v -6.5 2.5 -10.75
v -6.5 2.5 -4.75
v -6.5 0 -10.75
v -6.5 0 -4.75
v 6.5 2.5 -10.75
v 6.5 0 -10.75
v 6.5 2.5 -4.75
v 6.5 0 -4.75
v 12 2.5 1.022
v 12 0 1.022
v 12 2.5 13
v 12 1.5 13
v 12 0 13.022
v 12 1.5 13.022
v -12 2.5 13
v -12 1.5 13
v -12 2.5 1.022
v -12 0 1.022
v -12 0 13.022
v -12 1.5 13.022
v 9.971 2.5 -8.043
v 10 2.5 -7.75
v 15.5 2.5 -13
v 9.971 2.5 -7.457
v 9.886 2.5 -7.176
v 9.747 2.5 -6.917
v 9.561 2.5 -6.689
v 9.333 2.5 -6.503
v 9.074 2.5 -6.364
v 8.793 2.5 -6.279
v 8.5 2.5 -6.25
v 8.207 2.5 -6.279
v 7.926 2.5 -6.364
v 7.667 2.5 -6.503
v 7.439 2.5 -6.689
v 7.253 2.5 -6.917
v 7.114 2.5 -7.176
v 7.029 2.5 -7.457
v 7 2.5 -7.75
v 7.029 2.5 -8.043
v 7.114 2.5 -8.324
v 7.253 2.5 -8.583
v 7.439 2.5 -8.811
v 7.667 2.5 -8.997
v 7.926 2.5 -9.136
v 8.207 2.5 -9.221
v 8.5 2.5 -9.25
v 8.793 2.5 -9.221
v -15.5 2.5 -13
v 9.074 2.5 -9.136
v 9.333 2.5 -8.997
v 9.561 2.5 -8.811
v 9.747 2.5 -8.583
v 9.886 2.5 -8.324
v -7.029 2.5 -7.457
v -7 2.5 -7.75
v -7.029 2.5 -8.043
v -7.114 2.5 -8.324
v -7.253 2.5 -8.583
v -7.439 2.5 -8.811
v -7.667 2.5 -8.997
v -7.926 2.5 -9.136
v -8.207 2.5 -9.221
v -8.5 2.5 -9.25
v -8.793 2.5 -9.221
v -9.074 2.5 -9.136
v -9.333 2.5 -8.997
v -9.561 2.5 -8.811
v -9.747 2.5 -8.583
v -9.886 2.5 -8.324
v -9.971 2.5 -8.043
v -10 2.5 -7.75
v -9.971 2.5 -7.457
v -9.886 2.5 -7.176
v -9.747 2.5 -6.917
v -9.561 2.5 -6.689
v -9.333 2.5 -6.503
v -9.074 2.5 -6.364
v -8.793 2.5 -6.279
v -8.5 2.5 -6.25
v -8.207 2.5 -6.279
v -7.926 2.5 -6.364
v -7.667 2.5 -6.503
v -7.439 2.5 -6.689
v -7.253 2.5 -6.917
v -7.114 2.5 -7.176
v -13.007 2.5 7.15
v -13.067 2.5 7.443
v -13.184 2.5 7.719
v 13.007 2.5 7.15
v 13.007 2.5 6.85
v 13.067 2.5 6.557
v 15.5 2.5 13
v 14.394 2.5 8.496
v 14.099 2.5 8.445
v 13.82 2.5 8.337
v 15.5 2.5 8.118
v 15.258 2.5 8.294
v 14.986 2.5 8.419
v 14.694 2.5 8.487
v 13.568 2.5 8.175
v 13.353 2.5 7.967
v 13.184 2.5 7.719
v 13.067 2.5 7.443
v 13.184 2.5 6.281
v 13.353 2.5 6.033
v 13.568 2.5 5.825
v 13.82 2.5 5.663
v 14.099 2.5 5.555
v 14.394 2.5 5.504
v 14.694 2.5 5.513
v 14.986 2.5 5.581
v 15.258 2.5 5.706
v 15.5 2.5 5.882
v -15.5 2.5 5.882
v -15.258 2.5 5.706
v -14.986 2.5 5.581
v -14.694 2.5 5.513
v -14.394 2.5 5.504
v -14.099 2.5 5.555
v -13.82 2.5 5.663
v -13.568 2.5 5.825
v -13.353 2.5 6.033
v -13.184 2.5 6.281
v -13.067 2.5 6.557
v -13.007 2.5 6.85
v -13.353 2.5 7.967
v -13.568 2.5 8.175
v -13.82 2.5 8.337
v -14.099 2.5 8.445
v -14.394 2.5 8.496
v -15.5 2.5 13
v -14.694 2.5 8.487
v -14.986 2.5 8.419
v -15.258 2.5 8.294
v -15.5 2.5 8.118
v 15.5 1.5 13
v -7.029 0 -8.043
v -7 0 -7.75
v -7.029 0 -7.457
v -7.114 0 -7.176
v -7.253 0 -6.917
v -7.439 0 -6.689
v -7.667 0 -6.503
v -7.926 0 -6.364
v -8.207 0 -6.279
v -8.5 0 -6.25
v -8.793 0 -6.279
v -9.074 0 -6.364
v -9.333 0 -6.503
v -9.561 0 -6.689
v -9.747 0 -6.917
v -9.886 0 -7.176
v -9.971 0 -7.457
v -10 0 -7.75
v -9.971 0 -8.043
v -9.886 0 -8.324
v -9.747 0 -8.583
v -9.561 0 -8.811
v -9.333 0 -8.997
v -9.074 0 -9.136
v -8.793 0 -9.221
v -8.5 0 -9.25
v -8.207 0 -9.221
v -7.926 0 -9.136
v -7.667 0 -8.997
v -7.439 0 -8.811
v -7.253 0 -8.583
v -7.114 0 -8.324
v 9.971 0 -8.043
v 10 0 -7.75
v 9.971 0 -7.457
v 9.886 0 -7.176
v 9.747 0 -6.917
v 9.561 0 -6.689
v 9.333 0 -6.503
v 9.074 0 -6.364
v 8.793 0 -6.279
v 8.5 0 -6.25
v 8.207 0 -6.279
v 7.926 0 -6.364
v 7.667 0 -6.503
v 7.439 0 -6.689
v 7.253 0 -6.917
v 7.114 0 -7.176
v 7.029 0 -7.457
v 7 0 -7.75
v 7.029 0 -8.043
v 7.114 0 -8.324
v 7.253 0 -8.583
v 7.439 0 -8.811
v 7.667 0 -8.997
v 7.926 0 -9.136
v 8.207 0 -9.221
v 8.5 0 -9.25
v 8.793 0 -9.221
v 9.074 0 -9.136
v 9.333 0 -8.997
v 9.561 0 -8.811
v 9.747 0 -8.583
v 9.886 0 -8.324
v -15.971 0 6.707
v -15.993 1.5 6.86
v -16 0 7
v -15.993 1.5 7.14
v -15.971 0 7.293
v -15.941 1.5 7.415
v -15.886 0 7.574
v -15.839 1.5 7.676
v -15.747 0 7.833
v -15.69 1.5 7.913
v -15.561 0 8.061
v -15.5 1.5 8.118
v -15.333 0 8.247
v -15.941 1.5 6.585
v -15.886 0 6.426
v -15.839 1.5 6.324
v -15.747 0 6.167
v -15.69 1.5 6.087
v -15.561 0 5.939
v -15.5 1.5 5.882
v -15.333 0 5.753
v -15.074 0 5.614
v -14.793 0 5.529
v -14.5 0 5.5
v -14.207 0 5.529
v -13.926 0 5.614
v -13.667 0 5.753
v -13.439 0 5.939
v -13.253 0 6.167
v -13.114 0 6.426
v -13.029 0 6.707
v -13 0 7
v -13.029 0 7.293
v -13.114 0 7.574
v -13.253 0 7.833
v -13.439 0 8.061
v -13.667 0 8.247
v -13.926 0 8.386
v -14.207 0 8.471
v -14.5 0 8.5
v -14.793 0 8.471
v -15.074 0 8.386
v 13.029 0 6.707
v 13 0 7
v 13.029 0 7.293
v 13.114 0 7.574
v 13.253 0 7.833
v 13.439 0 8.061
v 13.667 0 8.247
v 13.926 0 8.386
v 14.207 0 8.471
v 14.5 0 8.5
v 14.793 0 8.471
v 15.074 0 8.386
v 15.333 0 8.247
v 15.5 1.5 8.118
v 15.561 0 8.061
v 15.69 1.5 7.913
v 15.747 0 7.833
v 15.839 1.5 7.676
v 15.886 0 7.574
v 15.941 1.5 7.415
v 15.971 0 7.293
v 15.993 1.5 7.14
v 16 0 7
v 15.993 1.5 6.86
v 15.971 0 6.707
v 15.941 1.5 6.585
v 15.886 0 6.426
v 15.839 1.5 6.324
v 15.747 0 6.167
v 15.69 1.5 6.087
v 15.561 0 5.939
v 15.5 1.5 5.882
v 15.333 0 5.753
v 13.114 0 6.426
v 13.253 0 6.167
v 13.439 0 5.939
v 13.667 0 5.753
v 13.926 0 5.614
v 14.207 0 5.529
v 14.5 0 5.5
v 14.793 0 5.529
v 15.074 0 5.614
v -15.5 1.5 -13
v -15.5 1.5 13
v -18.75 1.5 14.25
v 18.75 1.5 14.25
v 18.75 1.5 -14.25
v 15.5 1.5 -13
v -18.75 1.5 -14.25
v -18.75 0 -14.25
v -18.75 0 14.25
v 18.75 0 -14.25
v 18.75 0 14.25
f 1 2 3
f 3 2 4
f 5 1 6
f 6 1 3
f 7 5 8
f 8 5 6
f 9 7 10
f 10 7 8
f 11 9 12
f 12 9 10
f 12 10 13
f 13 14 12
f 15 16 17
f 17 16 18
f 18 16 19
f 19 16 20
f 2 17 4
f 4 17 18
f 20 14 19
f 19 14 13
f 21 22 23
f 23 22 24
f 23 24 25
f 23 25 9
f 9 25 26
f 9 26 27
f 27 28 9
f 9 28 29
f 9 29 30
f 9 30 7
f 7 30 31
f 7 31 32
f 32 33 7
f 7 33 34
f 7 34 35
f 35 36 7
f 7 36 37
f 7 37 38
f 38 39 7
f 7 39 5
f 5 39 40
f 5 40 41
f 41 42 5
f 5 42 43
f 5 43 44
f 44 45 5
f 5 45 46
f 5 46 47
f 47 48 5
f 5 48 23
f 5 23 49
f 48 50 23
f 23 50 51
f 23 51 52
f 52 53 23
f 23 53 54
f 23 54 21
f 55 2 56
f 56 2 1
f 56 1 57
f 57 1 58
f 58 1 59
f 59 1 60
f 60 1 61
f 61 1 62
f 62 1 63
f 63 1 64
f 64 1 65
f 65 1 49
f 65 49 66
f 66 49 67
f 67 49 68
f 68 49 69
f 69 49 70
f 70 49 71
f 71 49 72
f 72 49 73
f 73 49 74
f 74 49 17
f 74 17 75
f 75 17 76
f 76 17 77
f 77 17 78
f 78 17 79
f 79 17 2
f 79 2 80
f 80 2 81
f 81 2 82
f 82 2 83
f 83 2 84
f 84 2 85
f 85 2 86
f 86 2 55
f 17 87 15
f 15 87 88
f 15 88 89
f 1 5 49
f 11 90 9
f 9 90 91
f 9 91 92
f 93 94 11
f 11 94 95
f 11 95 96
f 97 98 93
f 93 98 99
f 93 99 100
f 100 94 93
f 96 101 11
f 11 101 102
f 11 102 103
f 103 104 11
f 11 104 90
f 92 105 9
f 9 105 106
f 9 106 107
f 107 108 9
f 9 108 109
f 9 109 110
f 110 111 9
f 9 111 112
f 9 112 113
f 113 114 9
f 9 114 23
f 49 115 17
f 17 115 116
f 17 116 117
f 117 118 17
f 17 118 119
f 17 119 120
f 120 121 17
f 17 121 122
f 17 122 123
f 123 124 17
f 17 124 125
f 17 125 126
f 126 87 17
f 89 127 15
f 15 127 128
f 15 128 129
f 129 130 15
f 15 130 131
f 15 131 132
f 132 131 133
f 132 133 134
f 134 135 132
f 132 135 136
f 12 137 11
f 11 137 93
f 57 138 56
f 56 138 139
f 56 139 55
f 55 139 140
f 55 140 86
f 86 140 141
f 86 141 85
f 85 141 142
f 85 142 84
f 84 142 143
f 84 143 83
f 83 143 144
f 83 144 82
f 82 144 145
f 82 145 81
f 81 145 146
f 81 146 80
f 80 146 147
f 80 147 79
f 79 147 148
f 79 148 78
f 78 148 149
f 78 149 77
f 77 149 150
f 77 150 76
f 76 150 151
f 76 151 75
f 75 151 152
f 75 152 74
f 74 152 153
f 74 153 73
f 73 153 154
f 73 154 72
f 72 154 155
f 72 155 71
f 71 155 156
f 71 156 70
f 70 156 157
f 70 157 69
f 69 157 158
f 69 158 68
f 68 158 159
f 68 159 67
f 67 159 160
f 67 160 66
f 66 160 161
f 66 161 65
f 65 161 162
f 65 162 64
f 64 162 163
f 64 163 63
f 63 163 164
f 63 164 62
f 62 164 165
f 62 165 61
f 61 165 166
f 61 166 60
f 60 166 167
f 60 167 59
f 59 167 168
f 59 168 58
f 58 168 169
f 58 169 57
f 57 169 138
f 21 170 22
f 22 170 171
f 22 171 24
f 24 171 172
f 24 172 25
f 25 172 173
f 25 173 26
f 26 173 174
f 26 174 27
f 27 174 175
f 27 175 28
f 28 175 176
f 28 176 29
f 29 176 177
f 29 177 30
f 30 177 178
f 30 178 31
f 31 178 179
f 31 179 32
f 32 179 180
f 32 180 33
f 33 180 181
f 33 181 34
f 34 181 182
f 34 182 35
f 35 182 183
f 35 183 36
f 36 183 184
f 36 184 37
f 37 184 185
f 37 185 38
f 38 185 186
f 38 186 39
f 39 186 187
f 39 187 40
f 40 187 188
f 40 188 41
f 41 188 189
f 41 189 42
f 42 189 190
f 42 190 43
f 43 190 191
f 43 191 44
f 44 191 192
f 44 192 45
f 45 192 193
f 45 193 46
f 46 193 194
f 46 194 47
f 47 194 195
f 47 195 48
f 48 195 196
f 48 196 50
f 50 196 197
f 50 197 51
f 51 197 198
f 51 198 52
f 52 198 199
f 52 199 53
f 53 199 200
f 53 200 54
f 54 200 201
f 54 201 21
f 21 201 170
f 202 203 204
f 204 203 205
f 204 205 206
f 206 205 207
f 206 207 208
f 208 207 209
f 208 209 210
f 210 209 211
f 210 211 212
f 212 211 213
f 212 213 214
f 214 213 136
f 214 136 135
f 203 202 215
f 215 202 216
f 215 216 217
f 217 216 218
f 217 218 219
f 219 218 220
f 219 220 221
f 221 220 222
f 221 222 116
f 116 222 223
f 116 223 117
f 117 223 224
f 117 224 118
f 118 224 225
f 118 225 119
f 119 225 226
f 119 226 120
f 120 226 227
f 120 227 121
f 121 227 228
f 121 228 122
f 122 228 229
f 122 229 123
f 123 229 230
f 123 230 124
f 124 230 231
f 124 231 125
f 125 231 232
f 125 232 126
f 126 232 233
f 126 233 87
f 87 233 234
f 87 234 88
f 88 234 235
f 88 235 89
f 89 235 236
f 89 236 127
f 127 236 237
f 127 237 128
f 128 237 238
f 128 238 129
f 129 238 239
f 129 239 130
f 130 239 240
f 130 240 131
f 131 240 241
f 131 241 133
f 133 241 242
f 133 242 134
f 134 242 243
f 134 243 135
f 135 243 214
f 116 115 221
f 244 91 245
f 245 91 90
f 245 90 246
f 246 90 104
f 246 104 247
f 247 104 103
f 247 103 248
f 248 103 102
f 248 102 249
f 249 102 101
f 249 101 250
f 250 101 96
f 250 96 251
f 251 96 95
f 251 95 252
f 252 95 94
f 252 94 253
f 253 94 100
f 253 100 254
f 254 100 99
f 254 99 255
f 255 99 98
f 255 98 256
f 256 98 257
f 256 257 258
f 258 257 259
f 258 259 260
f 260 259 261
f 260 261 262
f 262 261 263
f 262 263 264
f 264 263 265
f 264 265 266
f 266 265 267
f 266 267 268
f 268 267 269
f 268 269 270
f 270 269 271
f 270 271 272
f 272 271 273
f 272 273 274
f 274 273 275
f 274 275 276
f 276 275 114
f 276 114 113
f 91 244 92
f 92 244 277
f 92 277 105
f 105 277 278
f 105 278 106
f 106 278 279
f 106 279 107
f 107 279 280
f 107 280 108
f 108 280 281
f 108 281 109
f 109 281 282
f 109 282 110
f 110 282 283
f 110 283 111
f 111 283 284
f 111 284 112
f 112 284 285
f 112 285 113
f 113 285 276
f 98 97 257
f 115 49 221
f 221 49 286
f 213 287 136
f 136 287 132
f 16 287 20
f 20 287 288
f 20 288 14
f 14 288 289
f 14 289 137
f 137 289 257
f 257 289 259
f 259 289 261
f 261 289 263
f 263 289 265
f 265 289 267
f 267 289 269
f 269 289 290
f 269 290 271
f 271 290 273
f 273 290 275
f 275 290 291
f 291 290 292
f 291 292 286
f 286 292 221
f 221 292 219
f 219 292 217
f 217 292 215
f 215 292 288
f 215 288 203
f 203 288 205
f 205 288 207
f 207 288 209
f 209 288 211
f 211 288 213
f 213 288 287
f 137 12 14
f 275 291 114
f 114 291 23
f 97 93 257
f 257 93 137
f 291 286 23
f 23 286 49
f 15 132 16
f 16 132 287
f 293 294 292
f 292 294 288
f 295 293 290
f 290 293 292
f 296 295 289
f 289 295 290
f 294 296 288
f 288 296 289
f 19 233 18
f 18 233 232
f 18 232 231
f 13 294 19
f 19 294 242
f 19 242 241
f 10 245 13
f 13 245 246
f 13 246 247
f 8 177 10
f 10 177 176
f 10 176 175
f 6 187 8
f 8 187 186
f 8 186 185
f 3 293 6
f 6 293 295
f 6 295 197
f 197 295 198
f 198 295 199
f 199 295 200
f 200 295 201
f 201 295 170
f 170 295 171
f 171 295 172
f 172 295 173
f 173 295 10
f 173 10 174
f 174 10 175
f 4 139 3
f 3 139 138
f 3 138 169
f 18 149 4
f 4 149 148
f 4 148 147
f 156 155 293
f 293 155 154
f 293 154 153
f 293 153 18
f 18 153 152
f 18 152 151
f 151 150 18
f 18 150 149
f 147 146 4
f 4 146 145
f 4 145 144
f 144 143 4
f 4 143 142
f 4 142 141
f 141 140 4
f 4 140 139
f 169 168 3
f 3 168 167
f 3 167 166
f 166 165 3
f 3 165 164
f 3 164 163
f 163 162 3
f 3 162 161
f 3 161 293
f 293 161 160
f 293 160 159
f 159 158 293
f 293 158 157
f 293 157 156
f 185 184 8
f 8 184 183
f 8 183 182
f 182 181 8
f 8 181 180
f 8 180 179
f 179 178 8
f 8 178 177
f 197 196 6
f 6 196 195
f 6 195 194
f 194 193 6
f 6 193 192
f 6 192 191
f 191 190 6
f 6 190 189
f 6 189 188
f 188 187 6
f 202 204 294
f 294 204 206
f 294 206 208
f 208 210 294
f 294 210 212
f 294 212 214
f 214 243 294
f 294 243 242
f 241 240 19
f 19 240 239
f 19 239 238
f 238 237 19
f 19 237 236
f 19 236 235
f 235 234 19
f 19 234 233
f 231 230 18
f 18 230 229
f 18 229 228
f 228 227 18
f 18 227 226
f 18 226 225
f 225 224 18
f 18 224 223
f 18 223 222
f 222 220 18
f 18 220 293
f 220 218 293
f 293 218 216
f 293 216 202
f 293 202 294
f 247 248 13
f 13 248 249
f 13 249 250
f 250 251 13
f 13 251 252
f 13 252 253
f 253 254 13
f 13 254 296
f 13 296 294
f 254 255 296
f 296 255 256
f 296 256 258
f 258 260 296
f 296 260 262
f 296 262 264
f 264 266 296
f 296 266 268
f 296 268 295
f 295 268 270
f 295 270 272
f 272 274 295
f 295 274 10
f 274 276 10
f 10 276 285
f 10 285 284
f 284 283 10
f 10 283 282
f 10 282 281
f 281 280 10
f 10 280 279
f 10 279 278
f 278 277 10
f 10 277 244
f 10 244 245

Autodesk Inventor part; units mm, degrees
ref_plane "YZ Plane" through (0, 0, 0) normal (1, 0, 0) x (0, 1, 0)
ref_plane "XZ Plane" through (0, 0, 0) normal (0, 1, 0) x (-1, 0, 0)
ref_plane "XY Plane" through (0, 0, 0) normal (0, 0, 1) x (1, 0, 0)
sketch "Sketch1" plane through (0, 0, 0) normal (0, 1, 0) x (-1, 0, 0)
  line L0 (15.5, 13) -> (-15.5, 13)
  line L1 (-15.5, 13) -> (-15.5, -13)
  line L2 (-15.5, -13) -> (15.5, -13)
  line L3 (15.5, -13) -> (15.5, 13)
  line L4 (15.5, 13) -> (-15.5, -13) construction
  line L5 (-15.5, 13) -> (15.5, -13) construction
  line L6 (18.75, -14.25) -> (-18.75, -14.25)
  line L7 (-18.75, -14.25) -> (-18.75, 14.25)
  line L8 (-18.75, 14.25) -> (18.75, 14.25)
  line L9 (18.75, 14.25) -> (18.75, -14.25)
  line L10 (18.75, -14.25) -> (-18.75, 14.25) construction
  line L11 (-18.75, -14.25) -> (18.75, 14.25) construction
  point P0 (0, 0)
  dimension "d0" = 31
  dimension "d1" = 26
  dimension "d16" = 37.5
  dimension "d17" = 28.5
extrude "Extrusion2" add sketch "Sketch1" along normal blind 1.5 contours L3 L2 L1 L0 | L6 L7 L8 L9
sketch "Sketch2" plane through (0, 1.5, 0) normal (0, 1, 0) x (1, 0, 0)
  line L0 (15.5, 13) -> (-15.5, 13) projected
  line L1 (-15.5, -13) -> (15.5, -13) projected
  line L2 (-18.75, -14.25) -> (18.75, -14.25) projected
  line L3 (18.75, -14.25) -> (18.75, 14.25) projected
  line L4 (18.75, 14.25) -> (-18.75, 14.25) projected
  line L5 (-18.75, 14.25) -> (-18.75, -14.25) projected
  line L6 (15.5, -13) -> (15.5, 13) projected
  line L7 (-15.5, 13) -> (-15.5, -13) projected
  point P0 (0, 0)
extrude "Extrusion4" add sketch "Sketch2" along normal blind 1 contours L6 L1 L7 L0
sketch "Sketch3" plane through (0, 2.5, 0) normal (0, 1, 0) x (1, 0, 0)
  circle A0 centre (-14.5, -7) radius 1.5
  circle A1 centre (14.5, -7) radius 1.5
  circle A2 centre (-8.5, 7.75) radius 1.5
  circle A3 centre (8.5, 7.75) radius 1.5
  line L0 (0, -13.0822) -> (0, 13.0822)
  line L1 (-15.5, -13) -> (15.5, -13) projected
  line L2 (15.5, 13) -> (-15.5, 13) projected
  line L3 (8, -11.5) -> (-8, -11.5)
  line L4 (-8, -11.5) -> (-8, -2.5)
  line L5 (-8, -2.5) -> (8, -2.5)
  line L6 (8, -2.5) -> (8, -11.5)
  line L7 (8, -11.5) -> (-8, -2.5) construction
  line L8 (-8, -11.5) -> (8, -2.5) construction
  line L9 (4.5, 6) -> (-4.5, 6)
  line L10 (-4.5, 6) -> (-4.5, 9.5)
  line L11 (-4.5, 9.5) -> (4.5, 9.5)
  line L12 (4.5, 9.5) -> (4.5, 6)
  line L13 (4.5, 6) -> (-4.5, 9.5) construction
  line L14 (-4.5, 6) -> (4.5, 9.5) construction
  point P0 (0, 0)
  point P1 (0, -7)
  point P2 (0, 7.75)
  dimension "d25" = 3
  dimension "d26" = 3
  dimension "d27" = 3
  dimension "d28" = 3
  dimension "d29" = 8.5
  dimension "d30" = 8.5
  dimension "d31" = 14.5
  dimension "d32" = 14.5
  dimension "d33" = 6
  dimension "d34" = 6
  dimension "d35" = 5.25
  dimension "d36" = 5.25
  dimension "d37" = 16
  dimension "d38" = 9
  dimension "d39" = 9
  dimension "d40" = 3.5
extrude "Extrusion5" cut sketch "Sketch3" against normal up to surface (2.5 mm away)
sketch "Sketch4" plane through (0, 0, 0) normal (0, -1, 0) x (1, 0, 0)
  line L0 (-15.5, 13) -> (15.5, 13) projected
  line L1 (15.5, 13) -> (15.5, -13) projected
  line L2 (-15.5, -13) -> (-15.5, 13) projected
  line L3 (15.5, -13) -> (-15.5, -13) projected
  point P0 (0, 0)
sketch "Sketch5" plane through (0, 0, 0) normal (0, -1, 0) x (1, 0, 0)
  line L0 (12, 13.0215) -> (-12, 13.0215)
  line L1 (-12, 13.0215) -> (-12, 1.0215)
  line L2 (-12, 1.0215) -> (12, 1.0215)
  line L3 (12, 1.0215) -> (12, 13.0215)
  line L4 (12, 13.0215) -> (-12, 1.0215) construction
  line L5 (-12, 13.0215) -> (12, 1.0215) construction
  line L6 (6.5, -4.75) -> (-6.5, -4.75)
  line L7 (-6.5, -4.75) -> (-6.5, -10.75)
  line L8 (-6.5, -10.75) -> (6.5, -10.75)
  line L9 (6.5, -10.75) -> (6.5, -4.75)
  line L10 (6.5, -4.75) -> (-6.5, -10.75) construction
  line L11 (-6.5, -4.75) -> (6.5, -10.75) construction
  line L12 (12, 1.0215) -> (6.5, -4.75)
  line L13 (-12, 1.0215) -> (-6.5, -4.75)
  point P0 (0, 0)
  point P1 (0, -7.75)
  point P2 (0, 7.0215)
  dimension "d43" = 24
  dimension "d44" = 12
  dimension "d45" = 13
  dimension "d46" = 6
extrude "Extrusion6" cut sketch "Sketch5" against normal blind 10
equation "\"d30\" = d29"
equation "\"d32\" = d31"
equation "\"d34\" = d33"
equation "\"d36\" = d35"
properties part number "USB outer clamp plate_3DPrint"
